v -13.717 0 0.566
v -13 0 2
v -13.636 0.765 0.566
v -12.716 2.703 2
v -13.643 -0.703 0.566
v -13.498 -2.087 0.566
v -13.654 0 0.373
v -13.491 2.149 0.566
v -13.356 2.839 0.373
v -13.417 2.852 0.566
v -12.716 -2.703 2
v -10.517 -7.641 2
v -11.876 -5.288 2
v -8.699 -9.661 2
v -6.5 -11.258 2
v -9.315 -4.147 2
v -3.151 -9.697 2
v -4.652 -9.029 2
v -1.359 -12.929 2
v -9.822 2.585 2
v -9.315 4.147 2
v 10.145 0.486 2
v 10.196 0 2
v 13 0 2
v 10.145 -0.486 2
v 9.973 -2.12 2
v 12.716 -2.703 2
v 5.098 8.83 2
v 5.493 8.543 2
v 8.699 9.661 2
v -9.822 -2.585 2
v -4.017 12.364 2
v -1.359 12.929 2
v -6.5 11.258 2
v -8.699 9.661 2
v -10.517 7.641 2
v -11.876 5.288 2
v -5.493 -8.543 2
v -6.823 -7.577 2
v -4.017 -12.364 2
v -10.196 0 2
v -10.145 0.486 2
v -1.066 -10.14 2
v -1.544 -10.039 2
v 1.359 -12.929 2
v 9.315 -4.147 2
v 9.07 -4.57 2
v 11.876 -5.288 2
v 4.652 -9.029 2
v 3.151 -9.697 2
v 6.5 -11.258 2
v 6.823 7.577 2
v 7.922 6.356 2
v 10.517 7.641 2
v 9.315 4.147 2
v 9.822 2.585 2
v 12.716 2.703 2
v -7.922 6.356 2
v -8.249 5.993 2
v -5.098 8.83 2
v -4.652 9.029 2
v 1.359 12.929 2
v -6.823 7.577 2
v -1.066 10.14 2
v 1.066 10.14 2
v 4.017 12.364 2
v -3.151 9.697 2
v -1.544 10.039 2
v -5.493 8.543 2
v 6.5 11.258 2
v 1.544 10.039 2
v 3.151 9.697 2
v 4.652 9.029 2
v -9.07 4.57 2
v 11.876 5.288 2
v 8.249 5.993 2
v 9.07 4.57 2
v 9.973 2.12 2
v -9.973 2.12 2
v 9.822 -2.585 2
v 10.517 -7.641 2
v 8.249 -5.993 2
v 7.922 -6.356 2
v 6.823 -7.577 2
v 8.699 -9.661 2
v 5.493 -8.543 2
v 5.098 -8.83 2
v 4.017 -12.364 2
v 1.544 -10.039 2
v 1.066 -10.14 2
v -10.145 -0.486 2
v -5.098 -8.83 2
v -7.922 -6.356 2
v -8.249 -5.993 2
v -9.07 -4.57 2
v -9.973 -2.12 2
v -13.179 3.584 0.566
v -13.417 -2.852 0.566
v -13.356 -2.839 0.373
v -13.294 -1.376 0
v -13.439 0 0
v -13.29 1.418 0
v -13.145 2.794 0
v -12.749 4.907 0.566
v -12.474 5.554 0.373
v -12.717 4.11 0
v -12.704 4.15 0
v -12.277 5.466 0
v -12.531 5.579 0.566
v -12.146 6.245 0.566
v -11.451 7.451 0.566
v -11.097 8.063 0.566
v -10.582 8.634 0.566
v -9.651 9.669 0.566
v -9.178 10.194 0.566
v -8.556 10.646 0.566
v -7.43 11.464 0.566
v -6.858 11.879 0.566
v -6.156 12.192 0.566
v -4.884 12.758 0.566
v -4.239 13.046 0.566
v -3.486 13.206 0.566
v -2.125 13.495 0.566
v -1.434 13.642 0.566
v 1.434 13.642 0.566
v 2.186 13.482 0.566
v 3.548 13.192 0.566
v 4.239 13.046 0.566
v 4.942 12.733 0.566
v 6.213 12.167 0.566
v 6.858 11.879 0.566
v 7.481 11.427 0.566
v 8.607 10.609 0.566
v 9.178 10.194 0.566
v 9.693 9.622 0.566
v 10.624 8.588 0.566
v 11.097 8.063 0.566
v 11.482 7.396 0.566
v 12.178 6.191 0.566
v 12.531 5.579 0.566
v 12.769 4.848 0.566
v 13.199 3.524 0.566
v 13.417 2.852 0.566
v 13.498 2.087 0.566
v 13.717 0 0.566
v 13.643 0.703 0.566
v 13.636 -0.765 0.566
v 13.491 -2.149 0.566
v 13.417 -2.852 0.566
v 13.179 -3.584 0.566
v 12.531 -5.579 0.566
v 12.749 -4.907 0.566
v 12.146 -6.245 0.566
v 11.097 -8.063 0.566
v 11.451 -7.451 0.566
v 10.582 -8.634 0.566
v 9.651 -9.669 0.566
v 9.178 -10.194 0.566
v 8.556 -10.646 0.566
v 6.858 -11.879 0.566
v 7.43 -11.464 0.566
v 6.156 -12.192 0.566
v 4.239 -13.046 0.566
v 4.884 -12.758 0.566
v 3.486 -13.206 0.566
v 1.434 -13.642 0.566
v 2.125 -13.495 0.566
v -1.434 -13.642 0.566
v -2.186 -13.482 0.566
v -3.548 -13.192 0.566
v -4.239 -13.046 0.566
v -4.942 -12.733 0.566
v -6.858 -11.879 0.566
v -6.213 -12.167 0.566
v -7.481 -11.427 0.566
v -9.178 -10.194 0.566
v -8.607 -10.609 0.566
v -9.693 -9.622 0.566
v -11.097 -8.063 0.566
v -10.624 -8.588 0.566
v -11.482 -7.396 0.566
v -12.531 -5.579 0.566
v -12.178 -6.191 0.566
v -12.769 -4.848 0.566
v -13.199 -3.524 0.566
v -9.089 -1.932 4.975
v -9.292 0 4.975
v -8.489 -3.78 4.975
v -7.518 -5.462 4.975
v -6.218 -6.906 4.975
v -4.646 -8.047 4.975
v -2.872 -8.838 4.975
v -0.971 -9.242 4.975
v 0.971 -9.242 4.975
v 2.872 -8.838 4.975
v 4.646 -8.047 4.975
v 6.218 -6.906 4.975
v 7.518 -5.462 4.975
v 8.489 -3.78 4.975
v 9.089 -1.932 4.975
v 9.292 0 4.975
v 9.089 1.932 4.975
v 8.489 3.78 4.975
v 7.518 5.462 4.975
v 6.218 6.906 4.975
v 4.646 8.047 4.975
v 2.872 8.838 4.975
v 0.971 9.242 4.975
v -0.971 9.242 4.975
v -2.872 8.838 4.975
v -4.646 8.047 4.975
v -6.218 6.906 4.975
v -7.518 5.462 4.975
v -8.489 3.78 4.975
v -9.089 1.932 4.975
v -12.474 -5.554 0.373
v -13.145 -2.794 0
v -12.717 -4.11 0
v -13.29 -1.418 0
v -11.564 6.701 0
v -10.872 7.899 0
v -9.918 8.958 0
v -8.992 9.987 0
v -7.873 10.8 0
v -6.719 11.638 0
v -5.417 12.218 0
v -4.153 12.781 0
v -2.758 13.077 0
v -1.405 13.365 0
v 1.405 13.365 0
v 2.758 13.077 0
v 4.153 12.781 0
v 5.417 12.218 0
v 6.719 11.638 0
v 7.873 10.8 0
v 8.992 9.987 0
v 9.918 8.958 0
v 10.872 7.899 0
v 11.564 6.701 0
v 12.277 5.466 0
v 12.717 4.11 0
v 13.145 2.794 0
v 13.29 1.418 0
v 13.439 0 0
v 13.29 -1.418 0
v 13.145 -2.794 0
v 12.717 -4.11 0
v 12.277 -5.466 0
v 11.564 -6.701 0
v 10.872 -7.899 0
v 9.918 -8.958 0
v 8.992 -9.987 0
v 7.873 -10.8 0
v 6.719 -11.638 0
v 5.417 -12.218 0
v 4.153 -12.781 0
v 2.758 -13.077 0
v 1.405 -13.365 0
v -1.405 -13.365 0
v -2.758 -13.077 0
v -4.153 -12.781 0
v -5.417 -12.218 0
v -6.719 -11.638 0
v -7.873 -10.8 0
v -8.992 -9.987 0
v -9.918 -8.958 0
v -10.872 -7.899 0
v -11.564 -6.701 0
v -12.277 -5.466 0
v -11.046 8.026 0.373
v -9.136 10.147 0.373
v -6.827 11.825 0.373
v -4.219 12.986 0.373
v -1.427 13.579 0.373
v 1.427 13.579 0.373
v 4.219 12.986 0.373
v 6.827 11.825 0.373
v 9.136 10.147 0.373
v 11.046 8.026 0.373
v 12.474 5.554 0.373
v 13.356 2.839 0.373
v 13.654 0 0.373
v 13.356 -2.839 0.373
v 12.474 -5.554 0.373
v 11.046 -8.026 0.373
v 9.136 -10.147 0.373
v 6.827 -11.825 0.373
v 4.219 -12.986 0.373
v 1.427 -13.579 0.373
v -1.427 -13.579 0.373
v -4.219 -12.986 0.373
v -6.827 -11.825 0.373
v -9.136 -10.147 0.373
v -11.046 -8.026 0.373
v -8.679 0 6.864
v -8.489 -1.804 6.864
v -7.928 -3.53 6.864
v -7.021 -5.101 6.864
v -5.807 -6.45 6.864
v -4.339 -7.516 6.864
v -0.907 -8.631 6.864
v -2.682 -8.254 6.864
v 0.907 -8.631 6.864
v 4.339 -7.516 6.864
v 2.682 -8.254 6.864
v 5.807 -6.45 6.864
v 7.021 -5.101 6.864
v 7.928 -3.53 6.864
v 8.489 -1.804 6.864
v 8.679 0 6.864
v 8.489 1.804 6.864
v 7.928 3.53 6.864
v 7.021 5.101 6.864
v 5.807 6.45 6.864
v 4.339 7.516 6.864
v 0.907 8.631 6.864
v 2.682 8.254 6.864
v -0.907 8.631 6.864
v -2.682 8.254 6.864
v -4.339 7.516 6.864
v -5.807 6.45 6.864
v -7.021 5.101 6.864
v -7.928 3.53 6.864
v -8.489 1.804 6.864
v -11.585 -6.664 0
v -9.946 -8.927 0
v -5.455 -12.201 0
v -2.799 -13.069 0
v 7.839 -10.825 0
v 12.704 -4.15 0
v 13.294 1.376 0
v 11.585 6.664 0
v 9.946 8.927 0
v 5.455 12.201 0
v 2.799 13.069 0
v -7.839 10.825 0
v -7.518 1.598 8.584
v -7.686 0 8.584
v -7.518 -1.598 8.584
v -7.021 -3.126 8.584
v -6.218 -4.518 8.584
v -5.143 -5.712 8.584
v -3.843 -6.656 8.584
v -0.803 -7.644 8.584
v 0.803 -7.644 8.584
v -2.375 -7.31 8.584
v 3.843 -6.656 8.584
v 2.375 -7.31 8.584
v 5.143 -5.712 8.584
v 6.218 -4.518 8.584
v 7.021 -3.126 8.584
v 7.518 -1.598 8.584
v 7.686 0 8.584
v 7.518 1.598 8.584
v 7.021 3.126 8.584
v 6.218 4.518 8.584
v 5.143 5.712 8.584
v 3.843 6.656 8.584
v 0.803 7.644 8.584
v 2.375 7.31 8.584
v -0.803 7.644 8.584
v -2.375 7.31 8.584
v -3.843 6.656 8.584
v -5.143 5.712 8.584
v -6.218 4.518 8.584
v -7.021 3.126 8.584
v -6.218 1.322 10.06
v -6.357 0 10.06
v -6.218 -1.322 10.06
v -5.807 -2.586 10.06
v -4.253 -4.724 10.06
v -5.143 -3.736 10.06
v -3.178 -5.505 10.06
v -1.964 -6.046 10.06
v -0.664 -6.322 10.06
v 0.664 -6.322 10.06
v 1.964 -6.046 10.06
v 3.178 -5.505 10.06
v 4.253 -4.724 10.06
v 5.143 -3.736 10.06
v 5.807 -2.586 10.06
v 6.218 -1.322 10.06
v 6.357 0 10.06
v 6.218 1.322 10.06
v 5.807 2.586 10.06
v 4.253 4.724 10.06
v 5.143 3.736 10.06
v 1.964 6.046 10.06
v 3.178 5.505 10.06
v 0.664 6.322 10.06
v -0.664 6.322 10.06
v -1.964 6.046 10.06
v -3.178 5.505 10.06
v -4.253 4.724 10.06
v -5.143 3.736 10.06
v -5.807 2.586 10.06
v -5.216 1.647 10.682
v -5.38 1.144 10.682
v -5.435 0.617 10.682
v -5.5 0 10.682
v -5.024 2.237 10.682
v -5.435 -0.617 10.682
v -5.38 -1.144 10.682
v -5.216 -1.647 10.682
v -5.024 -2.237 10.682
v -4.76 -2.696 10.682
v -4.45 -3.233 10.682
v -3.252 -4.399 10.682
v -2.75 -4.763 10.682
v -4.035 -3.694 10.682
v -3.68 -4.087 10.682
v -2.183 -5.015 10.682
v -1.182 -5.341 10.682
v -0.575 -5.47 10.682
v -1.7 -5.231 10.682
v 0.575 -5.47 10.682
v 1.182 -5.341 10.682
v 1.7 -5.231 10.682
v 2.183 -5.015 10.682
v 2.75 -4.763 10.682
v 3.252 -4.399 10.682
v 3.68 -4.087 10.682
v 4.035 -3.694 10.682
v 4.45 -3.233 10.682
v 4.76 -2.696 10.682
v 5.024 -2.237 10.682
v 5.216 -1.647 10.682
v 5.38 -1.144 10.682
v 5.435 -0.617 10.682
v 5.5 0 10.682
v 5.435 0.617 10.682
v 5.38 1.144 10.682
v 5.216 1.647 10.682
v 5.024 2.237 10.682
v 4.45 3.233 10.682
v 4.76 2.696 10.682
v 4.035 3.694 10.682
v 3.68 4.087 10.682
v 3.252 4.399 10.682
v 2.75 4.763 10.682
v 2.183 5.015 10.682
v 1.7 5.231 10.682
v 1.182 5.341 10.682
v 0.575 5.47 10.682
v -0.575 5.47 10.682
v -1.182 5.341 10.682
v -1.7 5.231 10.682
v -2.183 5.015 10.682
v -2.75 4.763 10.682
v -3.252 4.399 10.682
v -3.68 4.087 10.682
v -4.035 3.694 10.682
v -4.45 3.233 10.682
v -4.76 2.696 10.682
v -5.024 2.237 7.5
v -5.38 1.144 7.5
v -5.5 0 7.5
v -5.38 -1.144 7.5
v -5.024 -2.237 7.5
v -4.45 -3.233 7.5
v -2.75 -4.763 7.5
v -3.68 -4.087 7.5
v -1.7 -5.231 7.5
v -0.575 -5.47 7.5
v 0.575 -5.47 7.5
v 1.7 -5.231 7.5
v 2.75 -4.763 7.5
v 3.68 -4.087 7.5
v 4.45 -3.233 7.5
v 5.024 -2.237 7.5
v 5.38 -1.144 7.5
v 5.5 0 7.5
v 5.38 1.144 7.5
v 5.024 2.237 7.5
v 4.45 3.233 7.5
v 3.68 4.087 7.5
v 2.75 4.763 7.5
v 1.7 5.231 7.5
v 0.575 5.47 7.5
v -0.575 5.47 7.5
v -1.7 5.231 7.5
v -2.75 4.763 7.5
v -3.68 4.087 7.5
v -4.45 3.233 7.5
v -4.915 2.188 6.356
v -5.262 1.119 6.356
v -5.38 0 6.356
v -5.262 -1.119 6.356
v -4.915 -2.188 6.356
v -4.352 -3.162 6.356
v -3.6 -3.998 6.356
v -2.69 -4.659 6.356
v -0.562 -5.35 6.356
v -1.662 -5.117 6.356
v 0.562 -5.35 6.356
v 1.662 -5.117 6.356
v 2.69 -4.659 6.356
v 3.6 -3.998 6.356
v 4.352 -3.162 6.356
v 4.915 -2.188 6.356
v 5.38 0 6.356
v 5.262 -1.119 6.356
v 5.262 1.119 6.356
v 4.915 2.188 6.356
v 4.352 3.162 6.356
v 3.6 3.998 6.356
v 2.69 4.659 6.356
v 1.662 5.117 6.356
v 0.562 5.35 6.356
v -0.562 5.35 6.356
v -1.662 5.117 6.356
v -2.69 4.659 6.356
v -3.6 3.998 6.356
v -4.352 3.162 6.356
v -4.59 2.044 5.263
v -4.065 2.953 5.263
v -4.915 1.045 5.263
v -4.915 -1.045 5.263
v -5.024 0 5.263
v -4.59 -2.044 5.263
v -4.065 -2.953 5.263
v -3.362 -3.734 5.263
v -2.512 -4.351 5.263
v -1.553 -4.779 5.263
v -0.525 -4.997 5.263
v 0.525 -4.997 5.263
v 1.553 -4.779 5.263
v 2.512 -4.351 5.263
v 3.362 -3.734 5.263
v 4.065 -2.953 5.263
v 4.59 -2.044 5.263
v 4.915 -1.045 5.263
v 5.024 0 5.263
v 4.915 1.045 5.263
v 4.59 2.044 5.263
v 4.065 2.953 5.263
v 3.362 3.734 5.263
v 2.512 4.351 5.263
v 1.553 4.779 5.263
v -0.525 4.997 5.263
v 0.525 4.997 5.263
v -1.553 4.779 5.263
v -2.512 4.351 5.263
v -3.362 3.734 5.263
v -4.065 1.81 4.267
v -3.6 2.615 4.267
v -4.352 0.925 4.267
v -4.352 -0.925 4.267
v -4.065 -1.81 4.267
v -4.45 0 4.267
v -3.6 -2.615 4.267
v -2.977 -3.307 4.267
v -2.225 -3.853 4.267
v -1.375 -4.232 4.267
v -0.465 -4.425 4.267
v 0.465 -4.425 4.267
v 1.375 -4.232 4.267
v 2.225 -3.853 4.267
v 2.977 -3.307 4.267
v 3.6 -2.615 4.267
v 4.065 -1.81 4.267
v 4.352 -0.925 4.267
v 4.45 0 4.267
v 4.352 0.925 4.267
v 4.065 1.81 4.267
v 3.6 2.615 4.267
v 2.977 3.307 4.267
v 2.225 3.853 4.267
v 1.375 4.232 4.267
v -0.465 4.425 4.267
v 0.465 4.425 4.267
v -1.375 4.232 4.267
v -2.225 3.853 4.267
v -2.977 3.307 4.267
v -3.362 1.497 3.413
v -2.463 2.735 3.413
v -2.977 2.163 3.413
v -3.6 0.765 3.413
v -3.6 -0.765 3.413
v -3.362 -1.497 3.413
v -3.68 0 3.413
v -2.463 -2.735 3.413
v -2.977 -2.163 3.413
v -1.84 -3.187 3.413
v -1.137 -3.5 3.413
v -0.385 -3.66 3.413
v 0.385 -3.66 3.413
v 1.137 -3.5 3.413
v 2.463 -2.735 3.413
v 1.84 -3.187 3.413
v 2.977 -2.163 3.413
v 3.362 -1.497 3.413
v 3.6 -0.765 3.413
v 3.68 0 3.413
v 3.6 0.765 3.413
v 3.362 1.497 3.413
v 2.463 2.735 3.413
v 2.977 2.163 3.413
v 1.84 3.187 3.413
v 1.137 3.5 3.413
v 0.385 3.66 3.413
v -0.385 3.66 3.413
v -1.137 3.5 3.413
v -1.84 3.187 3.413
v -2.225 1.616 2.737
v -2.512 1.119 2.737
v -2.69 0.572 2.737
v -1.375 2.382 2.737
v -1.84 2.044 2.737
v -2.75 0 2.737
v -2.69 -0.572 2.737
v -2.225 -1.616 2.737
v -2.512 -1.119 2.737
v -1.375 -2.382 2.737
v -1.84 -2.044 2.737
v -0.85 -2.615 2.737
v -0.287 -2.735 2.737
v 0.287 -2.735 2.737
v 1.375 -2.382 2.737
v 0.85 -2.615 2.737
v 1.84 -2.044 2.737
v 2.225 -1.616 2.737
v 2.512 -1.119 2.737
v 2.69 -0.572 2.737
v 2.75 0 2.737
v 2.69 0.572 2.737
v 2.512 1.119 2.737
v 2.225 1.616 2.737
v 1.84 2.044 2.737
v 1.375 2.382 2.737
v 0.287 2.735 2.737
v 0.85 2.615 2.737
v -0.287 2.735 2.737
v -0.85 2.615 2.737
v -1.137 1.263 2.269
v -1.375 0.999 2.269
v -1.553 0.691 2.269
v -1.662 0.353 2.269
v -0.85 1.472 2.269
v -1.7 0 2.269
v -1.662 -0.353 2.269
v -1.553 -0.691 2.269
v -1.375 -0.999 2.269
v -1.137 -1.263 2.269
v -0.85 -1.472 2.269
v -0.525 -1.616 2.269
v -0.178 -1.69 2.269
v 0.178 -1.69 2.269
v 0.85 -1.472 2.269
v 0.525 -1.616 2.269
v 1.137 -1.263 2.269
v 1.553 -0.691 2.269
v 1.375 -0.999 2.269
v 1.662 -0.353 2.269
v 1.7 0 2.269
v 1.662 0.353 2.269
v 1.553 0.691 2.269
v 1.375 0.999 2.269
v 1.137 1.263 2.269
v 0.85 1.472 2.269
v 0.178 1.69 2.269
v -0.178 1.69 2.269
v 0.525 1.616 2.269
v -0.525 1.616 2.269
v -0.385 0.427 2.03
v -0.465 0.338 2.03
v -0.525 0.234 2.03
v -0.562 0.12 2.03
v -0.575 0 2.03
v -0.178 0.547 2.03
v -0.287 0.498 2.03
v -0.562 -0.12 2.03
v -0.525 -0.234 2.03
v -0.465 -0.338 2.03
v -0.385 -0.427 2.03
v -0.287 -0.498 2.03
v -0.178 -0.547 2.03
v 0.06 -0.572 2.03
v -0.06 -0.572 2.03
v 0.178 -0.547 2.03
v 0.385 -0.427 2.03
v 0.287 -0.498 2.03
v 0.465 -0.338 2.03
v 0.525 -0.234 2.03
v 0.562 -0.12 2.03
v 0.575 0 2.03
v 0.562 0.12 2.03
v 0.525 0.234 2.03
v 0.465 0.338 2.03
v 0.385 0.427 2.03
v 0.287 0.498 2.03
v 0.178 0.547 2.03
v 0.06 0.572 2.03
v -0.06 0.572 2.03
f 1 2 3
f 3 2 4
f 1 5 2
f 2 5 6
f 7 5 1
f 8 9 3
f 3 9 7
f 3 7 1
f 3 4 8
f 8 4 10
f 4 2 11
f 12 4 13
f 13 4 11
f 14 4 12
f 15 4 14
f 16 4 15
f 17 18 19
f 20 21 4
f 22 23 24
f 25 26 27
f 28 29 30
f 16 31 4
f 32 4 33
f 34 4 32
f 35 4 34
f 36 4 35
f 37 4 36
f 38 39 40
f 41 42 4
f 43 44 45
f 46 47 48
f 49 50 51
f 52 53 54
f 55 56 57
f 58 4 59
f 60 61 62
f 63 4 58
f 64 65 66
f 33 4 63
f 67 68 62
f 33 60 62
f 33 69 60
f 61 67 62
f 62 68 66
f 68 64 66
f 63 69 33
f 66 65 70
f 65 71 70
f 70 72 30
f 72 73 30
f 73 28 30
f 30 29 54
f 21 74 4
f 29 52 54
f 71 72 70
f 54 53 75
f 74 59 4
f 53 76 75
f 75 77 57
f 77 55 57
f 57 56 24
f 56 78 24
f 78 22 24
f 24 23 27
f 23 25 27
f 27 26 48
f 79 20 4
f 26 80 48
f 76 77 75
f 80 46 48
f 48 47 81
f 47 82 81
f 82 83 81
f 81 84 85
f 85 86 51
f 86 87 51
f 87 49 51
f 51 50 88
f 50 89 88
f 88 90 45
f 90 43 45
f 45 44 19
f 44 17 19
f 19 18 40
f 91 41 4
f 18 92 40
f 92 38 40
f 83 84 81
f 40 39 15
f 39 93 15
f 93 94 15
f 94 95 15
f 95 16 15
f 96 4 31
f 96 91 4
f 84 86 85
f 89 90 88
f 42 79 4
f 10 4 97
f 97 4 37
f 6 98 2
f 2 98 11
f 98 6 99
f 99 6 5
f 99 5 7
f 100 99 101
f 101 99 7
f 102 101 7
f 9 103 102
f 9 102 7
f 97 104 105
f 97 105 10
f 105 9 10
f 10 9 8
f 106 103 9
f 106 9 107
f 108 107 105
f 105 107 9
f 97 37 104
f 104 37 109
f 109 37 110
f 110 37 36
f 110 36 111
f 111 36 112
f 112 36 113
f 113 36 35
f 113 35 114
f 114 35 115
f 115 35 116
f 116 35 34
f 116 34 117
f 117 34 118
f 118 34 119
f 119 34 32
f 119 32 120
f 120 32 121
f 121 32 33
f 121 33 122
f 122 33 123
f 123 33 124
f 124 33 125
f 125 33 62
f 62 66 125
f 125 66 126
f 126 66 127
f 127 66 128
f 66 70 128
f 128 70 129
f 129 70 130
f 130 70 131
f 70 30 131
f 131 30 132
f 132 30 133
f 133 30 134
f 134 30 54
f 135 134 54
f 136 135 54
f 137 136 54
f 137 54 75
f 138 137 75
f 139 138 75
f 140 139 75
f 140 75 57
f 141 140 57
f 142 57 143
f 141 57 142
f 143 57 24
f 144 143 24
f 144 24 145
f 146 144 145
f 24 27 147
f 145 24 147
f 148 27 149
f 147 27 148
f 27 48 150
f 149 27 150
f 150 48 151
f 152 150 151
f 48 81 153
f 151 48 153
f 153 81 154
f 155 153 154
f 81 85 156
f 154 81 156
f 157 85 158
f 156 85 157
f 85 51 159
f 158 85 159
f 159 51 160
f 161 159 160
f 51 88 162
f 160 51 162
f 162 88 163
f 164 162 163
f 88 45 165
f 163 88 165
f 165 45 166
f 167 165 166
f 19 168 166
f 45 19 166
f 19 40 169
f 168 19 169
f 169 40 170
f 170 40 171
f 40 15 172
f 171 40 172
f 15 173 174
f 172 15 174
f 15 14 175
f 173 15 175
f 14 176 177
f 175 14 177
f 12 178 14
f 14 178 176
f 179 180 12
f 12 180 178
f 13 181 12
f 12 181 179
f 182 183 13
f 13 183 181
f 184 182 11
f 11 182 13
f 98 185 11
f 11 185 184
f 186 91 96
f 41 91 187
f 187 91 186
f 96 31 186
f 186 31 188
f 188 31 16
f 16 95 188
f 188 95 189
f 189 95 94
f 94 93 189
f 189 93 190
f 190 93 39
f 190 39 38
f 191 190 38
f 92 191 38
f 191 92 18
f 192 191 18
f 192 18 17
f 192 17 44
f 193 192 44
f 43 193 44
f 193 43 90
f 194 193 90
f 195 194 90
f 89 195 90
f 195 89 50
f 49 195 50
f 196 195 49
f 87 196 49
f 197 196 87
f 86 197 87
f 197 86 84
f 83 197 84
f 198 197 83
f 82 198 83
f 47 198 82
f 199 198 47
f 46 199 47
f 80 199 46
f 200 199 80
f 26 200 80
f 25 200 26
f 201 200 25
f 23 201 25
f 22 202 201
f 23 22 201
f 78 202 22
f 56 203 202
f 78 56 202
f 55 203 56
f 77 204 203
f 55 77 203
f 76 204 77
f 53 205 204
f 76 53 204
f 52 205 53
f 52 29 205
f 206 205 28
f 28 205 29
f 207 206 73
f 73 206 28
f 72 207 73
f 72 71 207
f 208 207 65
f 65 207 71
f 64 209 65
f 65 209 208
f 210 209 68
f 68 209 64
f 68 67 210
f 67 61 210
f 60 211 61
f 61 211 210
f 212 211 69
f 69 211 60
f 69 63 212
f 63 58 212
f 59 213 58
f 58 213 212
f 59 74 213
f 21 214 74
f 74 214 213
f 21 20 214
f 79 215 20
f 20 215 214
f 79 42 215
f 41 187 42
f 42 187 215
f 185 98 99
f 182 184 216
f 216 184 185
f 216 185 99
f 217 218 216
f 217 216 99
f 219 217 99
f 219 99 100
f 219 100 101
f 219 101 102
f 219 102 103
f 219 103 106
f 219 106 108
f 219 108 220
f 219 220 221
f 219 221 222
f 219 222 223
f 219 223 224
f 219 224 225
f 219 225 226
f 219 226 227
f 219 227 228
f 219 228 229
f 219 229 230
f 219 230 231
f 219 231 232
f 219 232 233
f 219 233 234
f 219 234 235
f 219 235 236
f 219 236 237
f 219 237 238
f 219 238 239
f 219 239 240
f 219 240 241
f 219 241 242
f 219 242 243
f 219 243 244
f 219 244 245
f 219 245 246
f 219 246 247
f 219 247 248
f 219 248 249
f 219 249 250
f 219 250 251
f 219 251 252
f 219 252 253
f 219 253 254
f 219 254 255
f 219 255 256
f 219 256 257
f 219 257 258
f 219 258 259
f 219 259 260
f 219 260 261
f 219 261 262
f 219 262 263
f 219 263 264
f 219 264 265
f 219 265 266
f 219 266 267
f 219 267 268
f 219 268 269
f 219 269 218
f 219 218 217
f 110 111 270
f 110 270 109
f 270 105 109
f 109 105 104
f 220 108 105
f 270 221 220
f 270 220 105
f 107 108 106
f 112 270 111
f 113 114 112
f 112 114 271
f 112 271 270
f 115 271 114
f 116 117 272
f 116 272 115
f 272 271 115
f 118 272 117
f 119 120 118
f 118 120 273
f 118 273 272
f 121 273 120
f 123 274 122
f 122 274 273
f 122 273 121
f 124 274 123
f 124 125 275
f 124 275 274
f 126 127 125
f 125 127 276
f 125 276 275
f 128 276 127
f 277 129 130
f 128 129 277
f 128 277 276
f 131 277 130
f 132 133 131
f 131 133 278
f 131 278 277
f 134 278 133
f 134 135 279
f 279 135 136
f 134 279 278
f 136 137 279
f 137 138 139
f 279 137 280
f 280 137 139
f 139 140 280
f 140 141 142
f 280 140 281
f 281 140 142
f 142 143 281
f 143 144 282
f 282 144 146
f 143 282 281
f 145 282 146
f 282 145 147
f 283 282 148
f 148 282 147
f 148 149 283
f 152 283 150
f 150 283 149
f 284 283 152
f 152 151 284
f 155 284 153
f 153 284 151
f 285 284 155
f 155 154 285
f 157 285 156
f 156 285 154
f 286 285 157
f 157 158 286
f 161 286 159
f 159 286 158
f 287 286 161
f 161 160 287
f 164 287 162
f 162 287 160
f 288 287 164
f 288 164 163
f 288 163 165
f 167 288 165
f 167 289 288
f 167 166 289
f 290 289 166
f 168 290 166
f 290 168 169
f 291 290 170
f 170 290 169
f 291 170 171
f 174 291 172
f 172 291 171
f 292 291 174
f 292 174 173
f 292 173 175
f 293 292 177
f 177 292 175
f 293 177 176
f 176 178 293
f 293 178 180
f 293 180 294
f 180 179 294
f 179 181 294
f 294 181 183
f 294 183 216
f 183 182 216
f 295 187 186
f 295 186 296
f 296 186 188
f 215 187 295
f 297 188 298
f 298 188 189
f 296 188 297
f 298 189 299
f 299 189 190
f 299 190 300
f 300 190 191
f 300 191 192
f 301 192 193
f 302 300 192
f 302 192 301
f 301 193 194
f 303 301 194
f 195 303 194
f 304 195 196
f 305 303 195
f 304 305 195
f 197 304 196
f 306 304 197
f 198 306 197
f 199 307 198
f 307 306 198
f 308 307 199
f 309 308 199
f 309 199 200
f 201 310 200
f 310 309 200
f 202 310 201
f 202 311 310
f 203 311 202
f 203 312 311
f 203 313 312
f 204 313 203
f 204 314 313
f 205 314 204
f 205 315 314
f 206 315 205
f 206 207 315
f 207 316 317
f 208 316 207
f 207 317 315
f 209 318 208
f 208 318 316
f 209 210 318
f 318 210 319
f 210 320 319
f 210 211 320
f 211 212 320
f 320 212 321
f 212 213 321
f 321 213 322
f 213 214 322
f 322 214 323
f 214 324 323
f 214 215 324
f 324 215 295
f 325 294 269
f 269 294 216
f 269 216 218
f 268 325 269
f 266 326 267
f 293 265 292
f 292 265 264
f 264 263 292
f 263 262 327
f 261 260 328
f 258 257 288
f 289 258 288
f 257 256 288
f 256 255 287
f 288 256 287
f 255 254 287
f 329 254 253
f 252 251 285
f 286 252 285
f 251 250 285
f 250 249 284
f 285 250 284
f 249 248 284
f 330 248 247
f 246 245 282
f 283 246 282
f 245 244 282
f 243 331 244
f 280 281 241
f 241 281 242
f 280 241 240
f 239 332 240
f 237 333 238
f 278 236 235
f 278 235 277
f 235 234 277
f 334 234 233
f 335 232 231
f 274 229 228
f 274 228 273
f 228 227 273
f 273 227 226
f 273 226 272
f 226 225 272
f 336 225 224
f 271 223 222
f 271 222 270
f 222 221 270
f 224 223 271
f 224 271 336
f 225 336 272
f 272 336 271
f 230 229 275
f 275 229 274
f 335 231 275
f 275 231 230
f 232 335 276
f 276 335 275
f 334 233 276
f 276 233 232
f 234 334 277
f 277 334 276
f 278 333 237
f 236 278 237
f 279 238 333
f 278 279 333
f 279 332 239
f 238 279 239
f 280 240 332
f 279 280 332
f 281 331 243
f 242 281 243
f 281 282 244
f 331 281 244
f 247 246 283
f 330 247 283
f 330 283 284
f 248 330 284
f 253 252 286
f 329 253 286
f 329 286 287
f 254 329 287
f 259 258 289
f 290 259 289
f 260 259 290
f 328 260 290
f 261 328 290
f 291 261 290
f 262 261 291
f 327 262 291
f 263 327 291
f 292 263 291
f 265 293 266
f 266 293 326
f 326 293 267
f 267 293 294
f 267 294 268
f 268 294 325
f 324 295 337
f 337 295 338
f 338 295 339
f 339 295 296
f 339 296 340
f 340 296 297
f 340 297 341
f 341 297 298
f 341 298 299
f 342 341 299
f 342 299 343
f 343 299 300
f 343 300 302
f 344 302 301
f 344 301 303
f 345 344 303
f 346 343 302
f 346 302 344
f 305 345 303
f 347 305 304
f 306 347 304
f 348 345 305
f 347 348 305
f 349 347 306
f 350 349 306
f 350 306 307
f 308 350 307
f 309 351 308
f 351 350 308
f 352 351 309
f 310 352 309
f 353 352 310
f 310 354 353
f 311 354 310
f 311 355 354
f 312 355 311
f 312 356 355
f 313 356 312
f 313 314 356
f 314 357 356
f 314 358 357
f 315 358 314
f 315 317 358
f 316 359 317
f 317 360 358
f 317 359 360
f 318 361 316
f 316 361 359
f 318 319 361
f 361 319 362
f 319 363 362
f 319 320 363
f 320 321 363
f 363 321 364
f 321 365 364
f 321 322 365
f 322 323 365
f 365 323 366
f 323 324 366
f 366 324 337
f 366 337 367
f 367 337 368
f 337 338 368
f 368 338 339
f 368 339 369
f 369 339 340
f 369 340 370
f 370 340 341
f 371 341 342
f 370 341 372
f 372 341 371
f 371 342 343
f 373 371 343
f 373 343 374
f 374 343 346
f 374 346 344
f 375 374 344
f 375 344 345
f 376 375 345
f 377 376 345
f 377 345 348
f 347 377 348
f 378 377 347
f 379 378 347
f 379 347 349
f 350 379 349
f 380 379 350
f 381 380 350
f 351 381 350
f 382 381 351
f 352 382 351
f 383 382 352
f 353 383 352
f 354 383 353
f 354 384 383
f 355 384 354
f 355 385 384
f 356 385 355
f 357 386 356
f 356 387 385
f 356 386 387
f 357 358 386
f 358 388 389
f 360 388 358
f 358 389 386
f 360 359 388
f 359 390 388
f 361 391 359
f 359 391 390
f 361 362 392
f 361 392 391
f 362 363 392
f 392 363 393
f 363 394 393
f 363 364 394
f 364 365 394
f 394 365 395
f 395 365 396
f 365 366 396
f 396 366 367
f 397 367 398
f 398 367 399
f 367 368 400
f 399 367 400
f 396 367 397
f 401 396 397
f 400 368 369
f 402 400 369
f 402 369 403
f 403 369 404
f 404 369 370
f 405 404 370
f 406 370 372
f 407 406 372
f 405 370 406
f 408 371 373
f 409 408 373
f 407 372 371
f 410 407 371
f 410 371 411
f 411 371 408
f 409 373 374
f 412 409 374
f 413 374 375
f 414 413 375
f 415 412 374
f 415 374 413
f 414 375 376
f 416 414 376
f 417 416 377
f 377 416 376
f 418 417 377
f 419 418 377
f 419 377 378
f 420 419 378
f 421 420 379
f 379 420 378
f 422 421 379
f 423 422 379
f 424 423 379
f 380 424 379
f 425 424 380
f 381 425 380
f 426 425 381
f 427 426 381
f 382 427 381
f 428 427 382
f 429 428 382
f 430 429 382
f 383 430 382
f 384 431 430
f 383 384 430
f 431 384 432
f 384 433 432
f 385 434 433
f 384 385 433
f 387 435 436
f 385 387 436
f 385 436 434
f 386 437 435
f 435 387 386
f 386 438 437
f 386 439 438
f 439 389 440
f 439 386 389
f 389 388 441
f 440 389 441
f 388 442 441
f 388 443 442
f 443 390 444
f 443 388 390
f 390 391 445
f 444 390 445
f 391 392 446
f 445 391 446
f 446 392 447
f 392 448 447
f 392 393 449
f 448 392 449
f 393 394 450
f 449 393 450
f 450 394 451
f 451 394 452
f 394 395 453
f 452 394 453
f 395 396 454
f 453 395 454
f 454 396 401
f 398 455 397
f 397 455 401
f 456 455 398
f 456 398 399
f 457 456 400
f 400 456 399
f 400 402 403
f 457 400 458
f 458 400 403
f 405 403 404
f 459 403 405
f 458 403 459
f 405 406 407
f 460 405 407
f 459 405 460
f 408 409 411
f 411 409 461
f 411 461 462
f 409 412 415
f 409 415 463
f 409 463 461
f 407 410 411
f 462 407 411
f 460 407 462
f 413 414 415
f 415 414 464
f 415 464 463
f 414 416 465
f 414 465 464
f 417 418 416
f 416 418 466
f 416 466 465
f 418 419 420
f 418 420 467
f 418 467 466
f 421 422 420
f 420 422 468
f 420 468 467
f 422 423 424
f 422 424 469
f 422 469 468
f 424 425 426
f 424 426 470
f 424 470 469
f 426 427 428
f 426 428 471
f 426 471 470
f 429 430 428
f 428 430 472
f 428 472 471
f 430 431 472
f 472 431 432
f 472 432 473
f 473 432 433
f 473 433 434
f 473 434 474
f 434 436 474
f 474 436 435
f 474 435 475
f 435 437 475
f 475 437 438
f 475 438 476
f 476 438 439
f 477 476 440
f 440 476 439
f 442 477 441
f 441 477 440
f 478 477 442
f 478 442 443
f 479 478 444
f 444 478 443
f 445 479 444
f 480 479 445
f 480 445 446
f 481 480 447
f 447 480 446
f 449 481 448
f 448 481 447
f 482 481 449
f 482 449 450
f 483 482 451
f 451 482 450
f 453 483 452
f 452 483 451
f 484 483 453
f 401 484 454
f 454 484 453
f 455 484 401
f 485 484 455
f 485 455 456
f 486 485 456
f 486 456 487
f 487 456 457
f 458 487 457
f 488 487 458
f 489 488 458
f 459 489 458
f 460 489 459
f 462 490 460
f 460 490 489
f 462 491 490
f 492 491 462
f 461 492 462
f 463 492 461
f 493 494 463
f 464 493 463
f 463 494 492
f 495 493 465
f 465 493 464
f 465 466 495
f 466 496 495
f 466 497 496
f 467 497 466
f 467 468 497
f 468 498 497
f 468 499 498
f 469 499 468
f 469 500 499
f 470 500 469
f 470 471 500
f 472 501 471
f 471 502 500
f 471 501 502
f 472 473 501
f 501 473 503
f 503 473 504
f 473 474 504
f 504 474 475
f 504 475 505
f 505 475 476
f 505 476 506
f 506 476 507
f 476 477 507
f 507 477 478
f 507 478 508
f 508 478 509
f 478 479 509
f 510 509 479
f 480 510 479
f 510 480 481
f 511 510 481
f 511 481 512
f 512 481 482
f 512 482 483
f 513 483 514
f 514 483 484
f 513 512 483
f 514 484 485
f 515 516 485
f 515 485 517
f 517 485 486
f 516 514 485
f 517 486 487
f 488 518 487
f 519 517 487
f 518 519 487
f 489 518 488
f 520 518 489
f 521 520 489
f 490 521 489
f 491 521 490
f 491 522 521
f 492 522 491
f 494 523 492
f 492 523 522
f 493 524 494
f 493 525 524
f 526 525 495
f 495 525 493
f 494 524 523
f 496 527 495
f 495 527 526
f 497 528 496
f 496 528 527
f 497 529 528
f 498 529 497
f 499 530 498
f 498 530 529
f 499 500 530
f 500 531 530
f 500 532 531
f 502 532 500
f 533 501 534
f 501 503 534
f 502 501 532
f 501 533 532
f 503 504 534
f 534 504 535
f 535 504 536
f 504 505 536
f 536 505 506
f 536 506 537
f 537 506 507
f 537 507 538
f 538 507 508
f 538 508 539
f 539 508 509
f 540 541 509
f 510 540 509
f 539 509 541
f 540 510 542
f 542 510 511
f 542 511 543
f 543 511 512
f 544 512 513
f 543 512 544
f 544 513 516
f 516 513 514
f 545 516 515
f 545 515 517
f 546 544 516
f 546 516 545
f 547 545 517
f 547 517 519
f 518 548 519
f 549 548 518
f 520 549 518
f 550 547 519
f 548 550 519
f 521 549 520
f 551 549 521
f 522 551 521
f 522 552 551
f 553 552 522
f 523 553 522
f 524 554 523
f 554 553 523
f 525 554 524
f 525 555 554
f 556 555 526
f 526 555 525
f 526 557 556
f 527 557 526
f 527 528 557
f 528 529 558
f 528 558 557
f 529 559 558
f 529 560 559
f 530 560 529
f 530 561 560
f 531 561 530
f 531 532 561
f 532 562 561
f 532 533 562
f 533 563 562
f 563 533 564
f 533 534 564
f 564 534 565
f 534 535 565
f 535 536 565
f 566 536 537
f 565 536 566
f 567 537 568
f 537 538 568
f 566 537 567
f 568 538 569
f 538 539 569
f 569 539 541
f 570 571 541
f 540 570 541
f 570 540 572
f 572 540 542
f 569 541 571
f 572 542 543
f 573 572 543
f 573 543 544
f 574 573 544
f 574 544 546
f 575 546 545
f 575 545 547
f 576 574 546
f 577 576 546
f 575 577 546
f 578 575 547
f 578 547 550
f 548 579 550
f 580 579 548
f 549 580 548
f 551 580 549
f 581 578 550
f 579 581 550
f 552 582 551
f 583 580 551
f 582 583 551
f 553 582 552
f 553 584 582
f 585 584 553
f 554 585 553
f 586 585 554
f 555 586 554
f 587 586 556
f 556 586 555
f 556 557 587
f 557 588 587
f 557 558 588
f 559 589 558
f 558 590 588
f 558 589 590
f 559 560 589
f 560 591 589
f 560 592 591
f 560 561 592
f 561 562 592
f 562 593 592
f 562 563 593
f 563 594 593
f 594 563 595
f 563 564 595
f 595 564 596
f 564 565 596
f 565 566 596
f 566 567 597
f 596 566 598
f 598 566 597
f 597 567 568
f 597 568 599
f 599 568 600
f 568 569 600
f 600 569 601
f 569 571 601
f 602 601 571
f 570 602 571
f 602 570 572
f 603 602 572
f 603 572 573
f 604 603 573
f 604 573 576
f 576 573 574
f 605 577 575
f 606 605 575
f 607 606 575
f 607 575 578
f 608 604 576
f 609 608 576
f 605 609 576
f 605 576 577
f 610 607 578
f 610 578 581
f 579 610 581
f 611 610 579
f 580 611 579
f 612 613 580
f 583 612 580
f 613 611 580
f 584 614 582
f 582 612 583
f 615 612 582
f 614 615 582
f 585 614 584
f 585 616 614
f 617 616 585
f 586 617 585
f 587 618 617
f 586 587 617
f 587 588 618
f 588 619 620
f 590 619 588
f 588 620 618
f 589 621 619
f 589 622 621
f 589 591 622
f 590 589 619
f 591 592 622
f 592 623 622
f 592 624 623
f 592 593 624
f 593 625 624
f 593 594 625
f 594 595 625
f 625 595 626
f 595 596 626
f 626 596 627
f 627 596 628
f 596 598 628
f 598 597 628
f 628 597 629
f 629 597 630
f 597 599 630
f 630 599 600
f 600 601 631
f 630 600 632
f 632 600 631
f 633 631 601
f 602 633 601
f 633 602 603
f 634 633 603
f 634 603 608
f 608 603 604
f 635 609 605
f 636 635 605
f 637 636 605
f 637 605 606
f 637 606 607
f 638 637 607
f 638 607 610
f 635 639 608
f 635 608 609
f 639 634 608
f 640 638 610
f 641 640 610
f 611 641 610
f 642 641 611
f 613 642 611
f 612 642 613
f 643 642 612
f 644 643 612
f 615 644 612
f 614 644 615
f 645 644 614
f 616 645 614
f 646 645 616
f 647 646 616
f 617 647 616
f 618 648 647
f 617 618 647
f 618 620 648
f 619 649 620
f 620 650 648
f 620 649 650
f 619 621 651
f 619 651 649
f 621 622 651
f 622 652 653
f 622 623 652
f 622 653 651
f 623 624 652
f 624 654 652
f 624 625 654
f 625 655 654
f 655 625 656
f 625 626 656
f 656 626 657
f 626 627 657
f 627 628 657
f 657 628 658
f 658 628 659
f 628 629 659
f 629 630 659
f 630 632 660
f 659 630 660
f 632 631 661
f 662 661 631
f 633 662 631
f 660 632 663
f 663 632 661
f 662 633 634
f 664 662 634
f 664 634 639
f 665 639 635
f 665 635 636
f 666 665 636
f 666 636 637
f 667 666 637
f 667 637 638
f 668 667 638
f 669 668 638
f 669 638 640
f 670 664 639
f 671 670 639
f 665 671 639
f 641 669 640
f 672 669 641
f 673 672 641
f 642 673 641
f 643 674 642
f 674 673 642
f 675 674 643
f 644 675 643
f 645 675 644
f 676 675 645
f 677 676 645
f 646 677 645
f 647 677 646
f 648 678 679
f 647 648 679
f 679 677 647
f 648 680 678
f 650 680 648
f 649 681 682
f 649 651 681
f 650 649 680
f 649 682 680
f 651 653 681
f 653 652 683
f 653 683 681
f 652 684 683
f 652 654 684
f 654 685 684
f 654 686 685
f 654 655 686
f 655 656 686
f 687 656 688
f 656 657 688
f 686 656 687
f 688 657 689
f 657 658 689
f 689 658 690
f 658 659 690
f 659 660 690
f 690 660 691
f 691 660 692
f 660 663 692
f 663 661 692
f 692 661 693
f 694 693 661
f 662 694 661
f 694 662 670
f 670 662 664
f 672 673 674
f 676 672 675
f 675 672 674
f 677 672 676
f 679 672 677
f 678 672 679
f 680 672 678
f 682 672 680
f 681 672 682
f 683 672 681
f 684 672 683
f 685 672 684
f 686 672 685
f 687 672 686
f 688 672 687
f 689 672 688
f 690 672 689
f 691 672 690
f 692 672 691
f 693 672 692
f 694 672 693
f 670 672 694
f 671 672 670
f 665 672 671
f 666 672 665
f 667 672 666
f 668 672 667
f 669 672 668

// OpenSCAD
d=11;
h=10;
db=28;



pad = 0.1;	// Padding to maintain manifold
ch = 10;
cr = 16;
ct = 2;
r = 4;
smooth = 30;	// Number of facets of rounding cylinder

$fn = smooth;


difference(){
union(){

 hull(){
  translate([0,0,h/2-2]) sphere(r=d/2+4);
  cylinder(r=d/2+5,h=1);
 }

cylinder(r=db/2,r2=db/2-1,h=2);
}


// Inside Fillet
mirror([0,0,1]) translate([0,0,-4])difference() {
	rotate_extrude(convexity=10,  $fn = smooth)
		translate([cr-ct-r+pad,ct-pad,0])
			square(r+pad,r+pad);
	rotate_extrude(convexity=10,  $fn = smooth)
		translate([cr-ct-r,ct+r,0])
			circle(r=r,$fn=smooth);
	
	translate([0,0,-4]) rotate_extrude(convexity=10,  $fn = smooth)
		translate([cr-ct-r,ct+r,0])
			circle(r=r,$fn=smooth);

}


 translate([0,0,d/2+2]) hull(){
  translate([0,0,20])sphere(r=d/2);
  sphere(r=d/2);
 }


translate([0,0,-40])cylinder(r=40,h=40);

}
